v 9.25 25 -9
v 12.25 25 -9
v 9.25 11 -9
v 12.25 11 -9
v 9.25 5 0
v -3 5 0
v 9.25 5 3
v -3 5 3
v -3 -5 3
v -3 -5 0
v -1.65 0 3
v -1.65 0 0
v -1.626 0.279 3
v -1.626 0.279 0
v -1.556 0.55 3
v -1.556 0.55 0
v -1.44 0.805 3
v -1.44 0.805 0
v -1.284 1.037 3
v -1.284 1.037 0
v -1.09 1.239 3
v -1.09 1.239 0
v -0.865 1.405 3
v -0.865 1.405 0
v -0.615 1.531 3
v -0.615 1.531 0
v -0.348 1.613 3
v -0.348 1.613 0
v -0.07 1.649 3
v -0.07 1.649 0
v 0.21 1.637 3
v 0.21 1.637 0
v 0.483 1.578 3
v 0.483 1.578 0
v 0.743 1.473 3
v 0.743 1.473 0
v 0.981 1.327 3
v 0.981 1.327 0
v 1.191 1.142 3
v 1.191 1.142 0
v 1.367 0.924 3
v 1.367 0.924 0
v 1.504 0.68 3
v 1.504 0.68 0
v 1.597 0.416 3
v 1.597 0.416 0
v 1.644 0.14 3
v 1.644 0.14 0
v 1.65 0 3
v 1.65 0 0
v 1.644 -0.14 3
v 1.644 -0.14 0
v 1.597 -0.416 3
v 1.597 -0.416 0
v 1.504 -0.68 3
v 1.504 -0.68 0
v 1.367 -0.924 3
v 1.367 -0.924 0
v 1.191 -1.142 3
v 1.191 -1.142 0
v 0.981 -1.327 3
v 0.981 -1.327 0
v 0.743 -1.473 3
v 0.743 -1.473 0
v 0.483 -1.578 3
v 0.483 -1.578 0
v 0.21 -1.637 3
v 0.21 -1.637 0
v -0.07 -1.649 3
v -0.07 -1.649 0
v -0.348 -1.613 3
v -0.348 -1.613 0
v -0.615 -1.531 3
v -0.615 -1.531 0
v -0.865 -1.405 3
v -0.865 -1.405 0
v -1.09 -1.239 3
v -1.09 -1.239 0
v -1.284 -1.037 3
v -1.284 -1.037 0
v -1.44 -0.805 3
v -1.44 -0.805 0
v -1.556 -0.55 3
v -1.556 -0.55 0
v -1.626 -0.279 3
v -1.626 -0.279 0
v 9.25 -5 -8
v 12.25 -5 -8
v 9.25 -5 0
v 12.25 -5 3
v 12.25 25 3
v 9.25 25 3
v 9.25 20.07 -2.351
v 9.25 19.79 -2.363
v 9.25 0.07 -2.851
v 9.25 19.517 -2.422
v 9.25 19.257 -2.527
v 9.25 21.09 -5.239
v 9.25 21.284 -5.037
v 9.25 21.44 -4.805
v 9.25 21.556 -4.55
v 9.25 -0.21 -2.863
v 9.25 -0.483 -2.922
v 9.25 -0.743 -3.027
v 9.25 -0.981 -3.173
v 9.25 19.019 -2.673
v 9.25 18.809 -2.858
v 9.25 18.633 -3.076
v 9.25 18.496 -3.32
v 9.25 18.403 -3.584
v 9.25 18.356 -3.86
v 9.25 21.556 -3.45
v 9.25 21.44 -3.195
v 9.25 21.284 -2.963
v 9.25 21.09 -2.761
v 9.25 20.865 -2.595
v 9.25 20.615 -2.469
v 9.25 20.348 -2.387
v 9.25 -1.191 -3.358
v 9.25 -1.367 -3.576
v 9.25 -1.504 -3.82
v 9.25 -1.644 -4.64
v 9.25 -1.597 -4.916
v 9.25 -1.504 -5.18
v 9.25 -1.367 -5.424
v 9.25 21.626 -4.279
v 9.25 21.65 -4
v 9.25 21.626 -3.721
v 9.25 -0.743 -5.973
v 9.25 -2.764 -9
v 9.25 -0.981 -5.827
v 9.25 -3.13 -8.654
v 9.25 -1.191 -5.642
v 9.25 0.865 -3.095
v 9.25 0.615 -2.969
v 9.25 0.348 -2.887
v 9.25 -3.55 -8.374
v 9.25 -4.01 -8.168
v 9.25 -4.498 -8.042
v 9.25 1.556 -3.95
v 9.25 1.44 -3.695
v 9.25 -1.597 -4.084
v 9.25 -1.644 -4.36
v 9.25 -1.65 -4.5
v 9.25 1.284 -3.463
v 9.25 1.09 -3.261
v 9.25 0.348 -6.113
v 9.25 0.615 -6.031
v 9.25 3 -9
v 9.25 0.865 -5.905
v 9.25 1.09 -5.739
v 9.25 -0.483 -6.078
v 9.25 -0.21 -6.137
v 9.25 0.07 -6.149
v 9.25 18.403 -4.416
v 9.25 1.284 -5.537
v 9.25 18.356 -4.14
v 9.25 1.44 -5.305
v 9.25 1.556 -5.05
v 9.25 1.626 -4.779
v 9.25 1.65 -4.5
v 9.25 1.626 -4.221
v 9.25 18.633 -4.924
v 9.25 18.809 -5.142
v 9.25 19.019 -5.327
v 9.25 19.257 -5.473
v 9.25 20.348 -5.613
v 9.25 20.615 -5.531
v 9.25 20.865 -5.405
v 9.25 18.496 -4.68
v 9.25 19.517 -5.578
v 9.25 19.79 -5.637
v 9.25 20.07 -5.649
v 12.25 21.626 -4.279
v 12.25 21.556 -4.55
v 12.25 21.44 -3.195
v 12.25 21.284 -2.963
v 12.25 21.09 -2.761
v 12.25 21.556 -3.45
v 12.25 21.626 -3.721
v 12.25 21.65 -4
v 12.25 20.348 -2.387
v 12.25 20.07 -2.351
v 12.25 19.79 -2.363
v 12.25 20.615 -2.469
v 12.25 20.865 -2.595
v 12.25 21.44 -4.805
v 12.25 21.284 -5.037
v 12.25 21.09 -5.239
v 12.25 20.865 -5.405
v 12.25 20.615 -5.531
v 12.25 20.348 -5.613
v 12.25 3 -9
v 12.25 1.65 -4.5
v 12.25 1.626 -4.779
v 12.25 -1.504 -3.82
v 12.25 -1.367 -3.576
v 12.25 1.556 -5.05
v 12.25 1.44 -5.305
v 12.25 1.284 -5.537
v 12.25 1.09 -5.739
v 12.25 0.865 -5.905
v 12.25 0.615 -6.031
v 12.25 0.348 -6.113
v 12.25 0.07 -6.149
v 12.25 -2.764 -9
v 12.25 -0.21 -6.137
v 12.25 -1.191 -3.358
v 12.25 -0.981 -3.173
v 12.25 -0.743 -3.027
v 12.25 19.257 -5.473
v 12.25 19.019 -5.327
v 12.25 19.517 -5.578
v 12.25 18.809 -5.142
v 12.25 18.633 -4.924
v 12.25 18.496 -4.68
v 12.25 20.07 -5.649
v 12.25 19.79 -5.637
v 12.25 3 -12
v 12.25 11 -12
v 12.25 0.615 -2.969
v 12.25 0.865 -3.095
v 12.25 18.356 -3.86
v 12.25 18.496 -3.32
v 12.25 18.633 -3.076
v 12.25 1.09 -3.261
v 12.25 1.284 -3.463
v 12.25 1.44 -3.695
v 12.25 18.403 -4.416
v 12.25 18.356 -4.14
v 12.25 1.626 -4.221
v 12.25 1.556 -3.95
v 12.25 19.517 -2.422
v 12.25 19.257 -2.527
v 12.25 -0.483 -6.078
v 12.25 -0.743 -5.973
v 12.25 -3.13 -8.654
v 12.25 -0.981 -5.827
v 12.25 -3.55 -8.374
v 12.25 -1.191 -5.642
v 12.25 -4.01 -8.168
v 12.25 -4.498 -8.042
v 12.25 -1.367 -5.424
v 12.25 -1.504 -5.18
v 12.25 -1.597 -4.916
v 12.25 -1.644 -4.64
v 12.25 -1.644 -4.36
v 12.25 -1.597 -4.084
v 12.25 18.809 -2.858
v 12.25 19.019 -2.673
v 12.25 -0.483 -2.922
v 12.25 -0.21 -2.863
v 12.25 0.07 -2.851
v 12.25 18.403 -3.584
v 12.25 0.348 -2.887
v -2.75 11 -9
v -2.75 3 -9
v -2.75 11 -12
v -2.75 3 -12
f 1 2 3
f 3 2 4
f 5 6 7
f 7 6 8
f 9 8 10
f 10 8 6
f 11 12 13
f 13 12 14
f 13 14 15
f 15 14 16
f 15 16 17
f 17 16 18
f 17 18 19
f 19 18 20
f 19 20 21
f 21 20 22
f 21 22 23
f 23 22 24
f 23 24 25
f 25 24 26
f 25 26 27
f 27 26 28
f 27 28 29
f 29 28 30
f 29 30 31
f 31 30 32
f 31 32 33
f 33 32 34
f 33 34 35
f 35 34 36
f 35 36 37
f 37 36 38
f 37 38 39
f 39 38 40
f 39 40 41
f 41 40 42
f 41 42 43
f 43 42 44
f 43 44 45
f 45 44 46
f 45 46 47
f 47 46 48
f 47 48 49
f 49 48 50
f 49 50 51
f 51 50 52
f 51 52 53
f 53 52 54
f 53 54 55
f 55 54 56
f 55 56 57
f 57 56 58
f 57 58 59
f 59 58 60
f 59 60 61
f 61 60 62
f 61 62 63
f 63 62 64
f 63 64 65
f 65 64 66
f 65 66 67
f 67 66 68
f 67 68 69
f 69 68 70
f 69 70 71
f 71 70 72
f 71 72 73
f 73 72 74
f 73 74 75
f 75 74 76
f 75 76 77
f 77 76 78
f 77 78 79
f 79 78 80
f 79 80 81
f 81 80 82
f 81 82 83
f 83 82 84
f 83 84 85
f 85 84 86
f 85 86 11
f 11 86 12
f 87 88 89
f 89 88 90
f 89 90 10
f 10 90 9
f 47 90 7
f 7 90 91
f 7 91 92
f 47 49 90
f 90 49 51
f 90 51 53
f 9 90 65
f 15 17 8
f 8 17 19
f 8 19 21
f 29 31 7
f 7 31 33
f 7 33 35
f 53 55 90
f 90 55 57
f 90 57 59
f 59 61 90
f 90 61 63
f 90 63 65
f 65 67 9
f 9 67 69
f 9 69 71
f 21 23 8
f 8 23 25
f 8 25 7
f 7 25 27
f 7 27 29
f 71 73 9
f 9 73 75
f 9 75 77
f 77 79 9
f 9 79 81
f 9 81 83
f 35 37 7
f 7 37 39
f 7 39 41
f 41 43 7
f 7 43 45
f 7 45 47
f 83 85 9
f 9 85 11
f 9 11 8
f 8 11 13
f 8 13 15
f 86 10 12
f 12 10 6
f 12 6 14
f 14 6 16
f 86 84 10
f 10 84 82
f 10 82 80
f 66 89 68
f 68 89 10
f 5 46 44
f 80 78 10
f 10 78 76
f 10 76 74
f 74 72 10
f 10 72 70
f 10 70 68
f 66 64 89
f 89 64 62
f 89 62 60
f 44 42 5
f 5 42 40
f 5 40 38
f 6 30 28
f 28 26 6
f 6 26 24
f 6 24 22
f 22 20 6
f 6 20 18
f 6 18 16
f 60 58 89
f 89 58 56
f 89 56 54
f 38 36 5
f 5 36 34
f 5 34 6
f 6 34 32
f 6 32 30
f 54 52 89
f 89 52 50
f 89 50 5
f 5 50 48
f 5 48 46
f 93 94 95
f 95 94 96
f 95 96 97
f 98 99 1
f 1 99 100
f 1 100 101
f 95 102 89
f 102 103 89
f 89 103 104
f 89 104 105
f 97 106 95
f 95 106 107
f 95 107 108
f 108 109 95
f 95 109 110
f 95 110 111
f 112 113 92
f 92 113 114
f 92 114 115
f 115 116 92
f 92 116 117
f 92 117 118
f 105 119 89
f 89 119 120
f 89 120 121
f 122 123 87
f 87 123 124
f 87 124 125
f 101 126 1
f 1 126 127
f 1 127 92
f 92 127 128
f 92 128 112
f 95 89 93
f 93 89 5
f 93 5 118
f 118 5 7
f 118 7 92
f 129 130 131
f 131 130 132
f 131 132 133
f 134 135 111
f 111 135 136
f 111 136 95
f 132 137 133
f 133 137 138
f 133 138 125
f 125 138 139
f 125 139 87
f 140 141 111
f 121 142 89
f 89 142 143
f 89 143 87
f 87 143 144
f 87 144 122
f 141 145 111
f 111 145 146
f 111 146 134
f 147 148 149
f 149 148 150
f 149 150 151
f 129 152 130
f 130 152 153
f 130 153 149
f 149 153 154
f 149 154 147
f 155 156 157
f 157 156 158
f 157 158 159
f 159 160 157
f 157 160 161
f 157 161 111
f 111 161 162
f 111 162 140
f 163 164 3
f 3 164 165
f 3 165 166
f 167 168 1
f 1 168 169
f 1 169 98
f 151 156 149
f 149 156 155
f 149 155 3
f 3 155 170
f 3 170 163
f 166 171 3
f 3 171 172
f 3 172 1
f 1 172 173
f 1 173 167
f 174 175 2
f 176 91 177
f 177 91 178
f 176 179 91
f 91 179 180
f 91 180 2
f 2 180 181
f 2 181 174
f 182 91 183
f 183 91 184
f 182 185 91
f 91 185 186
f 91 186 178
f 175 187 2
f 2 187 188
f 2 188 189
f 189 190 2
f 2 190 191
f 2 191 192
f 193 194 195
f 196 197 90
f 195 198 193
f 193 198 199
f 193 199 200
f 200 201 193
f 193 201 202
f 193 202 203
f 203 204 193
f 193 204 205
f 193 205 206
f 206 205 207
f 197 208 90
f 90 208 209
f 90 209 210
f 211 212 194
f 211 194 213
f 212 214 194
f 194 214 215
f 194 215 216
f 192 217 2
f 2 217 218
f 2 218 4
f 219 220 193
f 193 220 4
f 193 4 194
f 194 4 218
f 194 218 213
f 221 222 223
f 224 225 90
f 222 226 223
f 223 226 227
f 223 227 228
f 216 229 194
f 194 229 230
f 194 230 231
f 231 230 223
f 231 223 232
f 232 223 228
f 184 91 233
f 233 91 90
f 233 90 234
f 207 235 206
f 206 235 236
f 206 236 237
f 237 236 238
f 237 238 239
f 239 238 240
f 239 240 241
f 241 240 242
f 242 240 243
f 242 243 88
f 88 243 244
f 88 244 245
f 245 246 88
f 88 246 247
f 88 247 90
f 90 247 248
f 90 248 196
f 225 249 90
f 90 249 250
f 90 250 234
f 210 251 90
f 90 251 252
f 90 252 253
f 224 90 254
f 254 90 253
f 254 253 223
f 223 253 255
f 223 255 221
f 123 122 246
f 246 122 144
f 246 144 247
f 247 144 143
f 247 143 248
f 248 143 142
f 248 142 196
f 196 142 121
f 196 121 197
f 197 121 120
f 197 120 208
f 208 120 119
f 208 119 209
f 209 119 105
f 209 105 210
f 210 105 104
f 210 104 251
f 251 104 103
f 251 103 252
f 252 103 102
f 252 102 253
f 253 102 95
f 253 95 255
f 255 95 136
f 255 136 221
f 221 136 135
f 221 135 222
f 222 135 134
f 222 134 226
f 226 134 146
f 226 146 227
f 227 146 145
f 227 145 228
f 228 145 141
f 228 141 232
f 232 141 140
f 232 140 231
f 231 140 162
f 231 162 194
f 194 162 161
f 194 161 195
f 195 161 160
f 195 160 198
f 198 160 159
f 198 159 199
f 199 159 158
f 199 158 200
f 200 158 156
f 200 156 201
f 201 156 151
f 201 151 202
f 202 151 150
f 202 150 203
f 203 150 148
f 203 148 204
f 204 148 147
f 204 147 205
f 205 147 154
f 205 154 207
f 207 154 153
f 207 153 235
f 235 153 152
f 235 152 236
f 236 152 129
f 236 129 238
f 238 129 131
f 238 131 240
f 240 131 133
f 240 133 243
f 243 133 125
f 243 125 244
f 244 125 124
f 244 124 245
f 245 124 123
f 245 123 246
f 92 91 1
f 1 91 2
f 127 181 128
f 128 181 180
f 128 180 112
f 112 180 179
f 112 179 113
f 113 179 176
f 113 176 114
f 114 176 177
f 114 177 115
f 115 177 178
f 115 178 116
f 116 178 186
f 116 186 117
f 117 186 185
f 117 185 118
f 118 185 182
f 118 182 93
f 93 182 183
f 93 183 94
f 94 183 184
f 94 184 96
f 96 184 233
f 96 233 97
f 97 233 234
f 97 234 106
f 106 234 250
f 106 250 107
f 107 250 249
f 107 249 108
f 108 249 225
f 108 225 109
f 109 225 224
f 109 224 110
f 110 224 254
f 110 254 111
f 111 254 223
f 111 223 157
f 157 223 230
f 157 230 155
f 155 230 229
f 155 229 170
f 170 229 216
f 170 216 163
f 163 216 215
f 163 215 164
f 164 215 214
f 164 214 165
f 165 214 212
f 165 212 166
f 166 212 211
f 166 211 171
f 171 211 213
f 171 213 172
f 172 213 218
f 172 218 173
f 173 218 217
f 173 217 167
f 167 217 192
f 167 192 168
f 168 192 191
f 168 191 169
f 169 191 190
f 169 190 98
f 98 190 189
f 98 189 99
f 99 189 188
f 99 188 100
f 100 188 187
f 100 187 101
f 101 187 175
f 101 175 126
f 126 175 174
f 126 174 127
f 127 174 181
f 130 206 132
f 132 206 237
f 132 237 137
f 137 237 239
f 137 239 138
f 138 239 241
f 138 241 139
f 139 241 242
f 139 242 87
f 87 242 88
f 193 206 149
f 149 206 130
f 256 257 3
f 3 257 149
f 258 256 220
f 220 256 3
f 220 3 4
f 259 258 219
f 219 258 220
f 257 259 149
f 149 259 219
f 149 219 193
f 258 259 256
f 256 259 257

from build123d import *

# Parameters (mm, degrees)
SKETCH_1_W          = 12.25
SKETCH_1_H          = 10
SKETCH_1_R          = 1.65
EXTRUDE_3_DEPTH     = 3
SKETCH_3_W          = 3
SKETCH_3_H          = 10
EXTRUDE_4_DEPTH     = 14
SKETCH_4_R          = 1.65
CUT_EXTRUDE_1_DEPTH = 10
SKETCH_6_W          = 14
SKETCH_6_H          = 20
SKETCH_6_R          = 1.65
EXTRUDE_5_DEPTH     = 3
CUT_EXTRUDE_2_DEPTH = 3
CUT_EXTRUDE_3_REACH = 33.282
SKETCH_8_W          = 2
SKETCH_8_H          = 27.763932023
SKETCH_9_W          = 3
SKETCH_9_H          = 8
EXTRUDE_6_DEPTH     = 15


with BuildPart() as part:
    # 草图1 → 凸台-拉伸3 (new body)
    with BuildSketch(Plane.XY):
        with Locations((3.125, 0)):
            Rectangle(SKETCH_1_W, SKETCH_1_H)
        Circle(SKETCH_1_R, mode=Mode.SUBTRACT)
    extrude(amount=EXTRUDE_3_DEPTH)

    # 草图3 → 凸台-拉伸4 (add)
    with BuildSketch(Plane.XY.offset(3)):
        with Locations((10.75, 0)):
            Rectangle(SKETCH_3_W, SKETCH_3_H)
    extrude(amount=-EXTRUDE_4_DEPTH)

    # 草图4 → 切除-拉伸1 (cut)
    with BuildSketch(Plane(origin=(12.25, 0, 0), x_dir=(0, 0, -1), z_dir=(1, 0, 0))):
        with Locations(Location((4.5, 0, 0), (0, 0, 90))):
            Circle(SKETCH_4_R)
    extrude(amount=-CUT_EXTRUDE_1_DEPTH, mode=Mode.SUBTRACT)

    # 草图6 → 凸台-拉伸5 (add)
    with BuildSketch(Plane(origin=(12.25, 0, 0), x_dir=(0, 0, -1), z_dir=(1, 0, 0))):
        with Locations((4, 15)):
            Rectangle(SKETCH_6_W, SKETCH_6_H)
        with Locations(Location((4, 20, 0), (0, 0, 90))):
            Circle(SKETCH_6_R, mode=Mode.SUBTRACT)
    extrude(amount=-EXTRUDE_5_DEPTH)

    # 草图7 → 切除-拉伸2 (cut)
    with BuildSketch(Plane(origin=(12.25, 0, 0), x_dir=(0, 0, -1), z_dir=(1, 0, 0))):
        with BuildLine():
            Line((8, -5), (11, -5))
            Line((11, -5), (11, -2))
            ThreePointArc((11, -2), (8.878679656, -2.878679656), (8, -5))
        make_face()
    extrude(amount=-CUT_EXTRUDE_2_DEPTH, mode=Mode.SUBTRACT)

    # 草图8 → 切除-拉伸3 (cut, up to next)
    with BuildSketch(Plane(origin=(12.25, 0, 0), x_dir=(0, 0, -1), z_dir=(1, 0, 0)), mode=Mode.PRIVATE) as cut_extrude_3_sk1:
        with Locations((10, 11.118033989)):
            Rectangle(SKETCH_8_W, SKETCH_8_H)
    cut_extrude_3_tool1 = extrude(cut_extrude_3_sk1.sketch, amount=-CUT_EXTRUDE_3_REACH, mode=Mode.PRIVATE) & part.part
    add(cut_extrude_3_tool1.solids().sort_by_distance((12.25, 11.118034, -10))[0], mode=Mode.SUBTRACT)

    # 草图9 → 凸台-拉伸6 (add)
    with BuildSketch(Plane(origin=(12.25, 0, 0), x_dir=(0, 0, -1), z_dir=(1, 0, 0))):
        with Locations((10.5, 7)):
            Rectangle(SKETCH_9_W, SKETCH_9_H)
    extrude(amount=-EXTRUDE_6_DEPTH)


solid = part.part
